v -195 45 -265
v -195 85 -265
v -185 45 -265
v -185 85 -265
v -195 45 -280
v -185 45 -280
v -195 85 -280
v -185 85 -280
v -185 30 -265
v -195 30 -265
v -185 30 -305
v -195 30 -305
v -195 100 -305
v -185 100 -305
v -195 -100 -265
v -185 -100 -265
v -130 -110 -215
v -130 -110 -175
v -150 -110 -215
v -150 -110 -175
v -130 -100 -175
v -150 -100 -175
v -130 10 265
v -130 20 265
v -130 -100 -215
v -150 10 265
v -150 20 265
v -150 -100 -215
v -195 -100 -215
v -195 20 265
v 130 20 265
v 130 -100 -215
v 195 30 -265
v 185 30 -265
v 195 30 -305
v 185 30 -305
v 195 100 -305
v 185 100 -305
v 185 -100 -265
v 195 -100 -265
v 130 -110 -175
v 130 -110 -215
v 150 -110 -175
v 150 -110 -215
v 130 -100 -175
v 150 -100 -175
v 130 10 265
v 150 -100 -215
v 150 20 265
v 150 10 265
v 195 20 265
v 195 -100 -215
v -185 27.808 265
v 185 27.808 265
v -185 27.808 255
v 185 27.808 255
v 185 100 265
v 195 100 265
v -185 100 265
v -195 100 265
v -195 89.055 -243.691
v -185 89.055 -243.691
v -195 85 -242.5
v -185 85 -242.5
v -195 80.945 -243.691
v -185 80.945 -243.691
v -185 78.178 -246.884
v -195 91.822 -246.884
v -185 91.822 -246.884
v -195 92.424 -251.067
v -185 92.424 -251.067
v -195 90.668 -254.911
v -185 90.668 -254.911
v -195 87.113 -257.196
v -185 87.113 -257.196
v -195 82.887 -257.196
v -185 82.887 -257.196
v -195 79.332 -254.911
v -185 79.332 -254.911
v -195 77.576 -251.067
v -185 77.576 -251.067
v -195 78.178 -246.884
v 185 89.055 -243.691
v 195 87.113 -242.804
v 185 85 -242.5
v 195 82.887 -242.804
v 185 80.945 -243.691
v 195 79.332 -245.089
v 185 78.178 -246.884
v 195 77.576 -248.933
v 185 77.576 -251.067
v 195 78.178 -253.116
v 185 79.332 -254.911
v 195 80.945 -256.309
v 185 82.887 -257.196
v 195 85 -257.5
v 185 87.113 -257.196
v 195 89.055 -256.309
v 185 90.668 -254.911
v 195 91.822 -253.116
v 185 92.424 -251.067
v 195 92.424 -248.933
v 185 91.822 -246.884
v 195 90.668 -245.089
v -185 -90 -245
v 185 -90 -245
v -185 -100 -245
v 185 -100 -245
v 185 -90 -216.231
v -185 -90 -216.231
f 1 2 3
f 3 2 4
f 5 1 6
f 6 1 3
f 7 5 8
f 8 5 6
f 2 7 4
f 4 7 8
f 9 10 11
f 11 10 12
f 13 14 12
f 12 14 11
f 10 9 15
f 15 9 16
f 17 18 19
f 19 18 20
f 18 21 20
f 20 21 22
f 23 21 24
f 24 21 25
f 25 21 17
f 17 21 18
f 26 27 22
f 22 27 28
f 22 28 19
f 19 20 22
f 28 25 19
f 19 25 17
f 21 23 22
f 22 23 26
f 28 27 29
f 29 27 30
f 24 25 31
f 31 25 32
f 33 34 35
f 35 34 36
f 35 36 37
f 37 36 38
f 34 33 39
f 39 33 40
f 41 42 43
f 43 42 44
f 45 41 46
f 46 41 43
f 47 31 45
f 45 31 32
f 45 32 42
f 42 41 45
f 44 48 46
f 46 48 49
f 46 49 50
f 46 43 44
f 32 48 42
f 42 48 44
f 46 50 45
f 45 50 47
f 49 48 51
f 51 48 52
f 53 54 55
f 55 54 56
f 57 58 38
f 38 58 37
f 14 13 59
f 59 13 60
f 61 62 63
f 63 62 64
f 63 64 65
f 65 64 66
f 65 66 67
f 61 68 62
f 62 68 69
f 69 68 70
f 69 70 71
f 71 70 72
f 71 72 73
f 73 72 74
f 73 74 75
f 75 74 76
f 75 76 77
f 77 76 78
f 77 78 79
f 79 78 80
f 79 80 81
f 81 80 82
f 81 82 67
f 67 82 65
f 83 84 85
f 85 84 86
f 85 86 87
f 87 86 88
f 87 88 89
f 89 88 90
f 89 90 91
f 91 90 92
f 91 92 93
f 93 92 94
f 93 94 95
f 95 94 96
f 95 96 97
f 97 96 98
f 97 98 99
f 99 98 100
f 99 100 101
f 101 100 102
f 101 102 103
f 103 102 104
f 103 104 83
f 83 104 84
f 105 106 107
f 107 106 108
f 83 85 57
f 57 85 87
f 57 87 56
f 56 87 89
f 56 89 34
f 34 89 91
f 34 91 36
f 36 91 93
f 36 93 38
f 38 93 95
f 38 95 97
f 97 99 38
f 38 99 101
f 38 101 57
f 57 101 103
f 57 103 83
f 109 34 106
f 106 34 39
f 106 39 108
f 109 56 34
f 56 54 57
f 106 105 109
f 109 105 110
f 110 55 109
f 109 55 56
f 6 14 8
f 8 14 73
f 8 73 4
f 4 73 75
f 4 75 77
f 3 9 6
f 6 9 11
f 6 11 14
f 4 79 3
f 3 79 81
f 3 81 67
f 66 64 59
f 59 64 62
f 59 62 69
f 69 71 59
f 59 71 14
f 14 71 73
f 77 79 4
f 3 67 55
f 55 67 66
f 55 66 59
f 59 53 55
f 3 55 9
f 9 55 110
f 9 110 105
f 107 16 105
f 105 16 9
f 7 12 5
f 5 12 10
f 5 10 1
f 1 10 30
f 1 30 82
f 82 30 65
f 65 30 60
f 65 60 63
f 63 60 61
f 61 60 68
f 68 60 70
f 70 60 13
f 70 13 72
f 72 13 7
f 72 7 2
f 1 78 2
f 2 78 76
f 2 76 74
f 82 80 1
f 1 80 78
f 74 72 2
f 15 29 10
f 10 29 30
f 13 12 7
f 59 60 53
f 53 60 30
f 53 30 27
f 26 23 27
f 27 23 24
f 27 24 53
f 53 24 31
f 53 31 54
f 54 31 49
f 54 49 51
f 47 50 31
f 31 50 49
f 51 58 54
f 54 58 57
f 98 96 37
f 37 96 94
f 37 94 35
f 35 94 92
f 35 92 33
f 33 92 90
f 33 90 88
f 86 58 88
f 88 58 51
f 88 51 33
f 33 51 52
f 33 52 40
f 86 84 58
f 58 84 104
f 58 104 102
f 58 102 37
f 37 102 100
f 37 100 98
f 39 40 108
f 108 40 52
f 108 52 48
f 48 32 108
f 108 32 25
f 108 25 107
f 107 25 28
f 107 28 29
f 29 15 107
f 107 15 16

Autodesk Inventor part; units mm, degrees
ref_plane "YZ Plane" through (0, 0, 0) normal (1, 0, 0) x (0, 1, 0)
ref_plane "XZ Plane" through (0, 0, 0) normal (0, 1, 0) x (-1, 0, 0)
ref_plane "XY Plane" through (0, 0, 0) normal (0, 0, 1) x (1, 0, 0)
sketch "草图1" plane through (0, 0, 0) normal (0, 0, 1) x (1, 0, 0)
  line L0 (-195, 100) -> (195, 100)
  line L1 (195, 100) -> (195, -100)
  line L2 (195, -100) -> (-195, -100)
  line L3 (-195, -100) -> (-195, 100)
  line L4 (-273, 0) -> (273, 0) projected
  line L5 (0, -140) -> (0, 140) projected
  point P0 (0, 0)
  dimension "d0" = 390
  dimension "d1" = 200
extrude "拉伸1" add sketch "草图1" along normal mid plane 530
sketch "草图2" plane through (195, -100, 265) normal (1, 0, 0) x (0, 0, -1)
  line L0 (0, 200) -> (0, 0) projected
  line L1 (0, 0) -> (0, 120)
  line L2 (0, 120) -> (480, 0)
  line L3 (530, 0) -> (0, 0) projected
  line L4 (480, 0) -> (0, 0)
  point P0 (265, 100)
  dimension "d4" = 120
  dimension "d5" = 480
extrude "拉伸2" cut sketch "草图2" against normal through all
shell "抽壳1" thickness 10 removed faces 1 at (-65, 100, 88.3333)
sketch "草图3" plane through (-195, -100, -265) normal (0, -1, 0) x (1, 0, 0)
  line L0 (390, 0) -> (0, 0) projected
  line L1 (10, 0) -> (380, 0)
  line L2 (380, 0) -> (380, 20)
  line L3 (380, 20) -> (10, 20)
  line L4 (10, 20) -> (10, 0)
  line L5 (195, -106) -> (195, 636) projected
  line L6 (0, 0) -> (0, 50) projected
  point P0 (195, 265)
  point P1 (10, 10)
  dimension "d9" = 20
  dimension "d28" = 10
extrude "拉伸3" cut sketch "草图3" against normal through all
sketch "草图4" plane through (195, -100, -265) normal (1, 0, 0) x (0, 0, -1)
  circle A0 centre (-15, 185) radius 7.5
  line L0 (-530, 200) -> (0, 200) projected
  line L1 (0, 200) -> (0, 0) projected
  point P0 (-265, 100)
  dimension "d13" = 15
  dimension "d14" = 15
  dimension "d15" = 15
extrude "拉伸4" cut sketch "草图4" against normal through all
sketch "草图6" plane through (185, 27.8078, 255) normal (0, 0, -1) x (-1, 0, 0)
  line L0 (370, 0) -> (0, 0) projected
  line L1 (370, 72.1922) -> (370, 0) projected
  line L2 (0, 0) -> (370, 0)
  line L3 (370, 0) -> (370, 75)
  line L4 (370, 75) -> (0, 75)
  line L5 (0, 75) -> (0, 0)
  point P0 (185, -27.8078)
  dimension "d24" = 75
extrude "拉伸6" cut sketch "草图6" against normal through all
sketch "草图10" plane through (-195, -100, -215) normal (0, -0.9701425, 0.2425356) x (1, 0, 0)
  line L0 (0, 494.7727) -> (390, 494.7727) projected
  line L1 (390, 0) -> (0, 0) projected
  line L2 (345, 494.7727) -> (325, 494.7727)
  line L3 (325, 494.7727) -> (325, 0)
  line L4 (325, 0) -> (345, 0)
  line L5 (345, 0) -> (345, 494.7727)
  line L6 (390, 494.7727) -> (390, -48.5071) projected
  point P0 (195, 232.8342)
  point P1 (345, 0)
  dimension "d46" = 20
  dimension "d47" = 45
sketch "草图11" plane through (0, 0, 265) normal (0, 0, 1) x (1, 0, 0)
  line L0 (-195, 20) -> (195, 20) projected
  line L1 (150, 20) -> (150, 10)
  line L2 (150, -100) -> (150, 20) projected
  point P0 (0, 0)
  dimension "d50" = 10
sweep "扫掠1" add profiles "草图10" path "草图11" path curves L1 contours L0 L5 L1 L3
sketch "草图14" plane through (130, -100, -215) normal (-1, 0, 0) x (0, 0.2425356, 0.9701425)
  line L0 (-48.5071, 12.1268) -> (0, 0) projected
  line L1 (0, 0) -> (-2.4254, -9.7014)
  line L2 (-2.4254, -9.7014) -> (36.3803, -19.4029)
  line L3 (36.3803, -19.4029) -> (38.8057, -9.7014)
  line L4 (0, 0) -> (494.7727, 0) projected
  line L5 (38.8057, -9.7014) -> (0, 0)
  line L6 (0, 0) -> (-2.4254, -9.7014) projected
  point P0 (232.8342, 44.8691)
  dimension "d54" = 40
extrude "拉伸11" add sketch "草图14" against normal blind 20
sketch "草图15" plane through (0, 0, -265) normal (0, 0, -1) x (-1, 0, 0)
  line L0 (-195, 100) -> (-195, -100) projected
  line L1 (-185, -100) -> (-185, 100) projected
  line L2 (-195, 100) -> (-185, 100)
  line L3 (-185, 100) -> (-185, 30)
  line L4 (-185, 30) -> (-195, 30)
  line L5 (-195, 30) -> (-195, 100)
  point P0 (0, 0)
  point P1 (-195, 30)
  dimension "d57" = 70
extrude "拉伸12" add sketch "草图15" along normal blind 40
mirror "镜像3" about plane through (0, 0, 0) normal (1, 0, 0) of "扫掠1", "拉伸11"
mirror "镜像4" about plane through (0, 0, 0) normal (1, 0, 0) of "拉伸12"
sketch "草图5" plane through (-185, -100, -265) normal (1, 0, 0) x (0, 0, -1)
  line L0 (0, 185) -> (15, 185)
  line L1 (15, 185) -> (15, 145)
  line L2 (15, 145) -> (0, 145)
  line L3 (0, 145) -> (0, 185)
  circle A0 centre (-15, 185) radius 7.5 projected
  point P0 (-265, 100)
  dimension "d18" = 15
  dimension "d19" = 40
  dimension "d21" = 0
  dimension "d60" = 15
extrude "拉伸5" cut sketch "草图5" against normal through all contours L0 L1 L2 L3
properties part number "猫砂盆"
